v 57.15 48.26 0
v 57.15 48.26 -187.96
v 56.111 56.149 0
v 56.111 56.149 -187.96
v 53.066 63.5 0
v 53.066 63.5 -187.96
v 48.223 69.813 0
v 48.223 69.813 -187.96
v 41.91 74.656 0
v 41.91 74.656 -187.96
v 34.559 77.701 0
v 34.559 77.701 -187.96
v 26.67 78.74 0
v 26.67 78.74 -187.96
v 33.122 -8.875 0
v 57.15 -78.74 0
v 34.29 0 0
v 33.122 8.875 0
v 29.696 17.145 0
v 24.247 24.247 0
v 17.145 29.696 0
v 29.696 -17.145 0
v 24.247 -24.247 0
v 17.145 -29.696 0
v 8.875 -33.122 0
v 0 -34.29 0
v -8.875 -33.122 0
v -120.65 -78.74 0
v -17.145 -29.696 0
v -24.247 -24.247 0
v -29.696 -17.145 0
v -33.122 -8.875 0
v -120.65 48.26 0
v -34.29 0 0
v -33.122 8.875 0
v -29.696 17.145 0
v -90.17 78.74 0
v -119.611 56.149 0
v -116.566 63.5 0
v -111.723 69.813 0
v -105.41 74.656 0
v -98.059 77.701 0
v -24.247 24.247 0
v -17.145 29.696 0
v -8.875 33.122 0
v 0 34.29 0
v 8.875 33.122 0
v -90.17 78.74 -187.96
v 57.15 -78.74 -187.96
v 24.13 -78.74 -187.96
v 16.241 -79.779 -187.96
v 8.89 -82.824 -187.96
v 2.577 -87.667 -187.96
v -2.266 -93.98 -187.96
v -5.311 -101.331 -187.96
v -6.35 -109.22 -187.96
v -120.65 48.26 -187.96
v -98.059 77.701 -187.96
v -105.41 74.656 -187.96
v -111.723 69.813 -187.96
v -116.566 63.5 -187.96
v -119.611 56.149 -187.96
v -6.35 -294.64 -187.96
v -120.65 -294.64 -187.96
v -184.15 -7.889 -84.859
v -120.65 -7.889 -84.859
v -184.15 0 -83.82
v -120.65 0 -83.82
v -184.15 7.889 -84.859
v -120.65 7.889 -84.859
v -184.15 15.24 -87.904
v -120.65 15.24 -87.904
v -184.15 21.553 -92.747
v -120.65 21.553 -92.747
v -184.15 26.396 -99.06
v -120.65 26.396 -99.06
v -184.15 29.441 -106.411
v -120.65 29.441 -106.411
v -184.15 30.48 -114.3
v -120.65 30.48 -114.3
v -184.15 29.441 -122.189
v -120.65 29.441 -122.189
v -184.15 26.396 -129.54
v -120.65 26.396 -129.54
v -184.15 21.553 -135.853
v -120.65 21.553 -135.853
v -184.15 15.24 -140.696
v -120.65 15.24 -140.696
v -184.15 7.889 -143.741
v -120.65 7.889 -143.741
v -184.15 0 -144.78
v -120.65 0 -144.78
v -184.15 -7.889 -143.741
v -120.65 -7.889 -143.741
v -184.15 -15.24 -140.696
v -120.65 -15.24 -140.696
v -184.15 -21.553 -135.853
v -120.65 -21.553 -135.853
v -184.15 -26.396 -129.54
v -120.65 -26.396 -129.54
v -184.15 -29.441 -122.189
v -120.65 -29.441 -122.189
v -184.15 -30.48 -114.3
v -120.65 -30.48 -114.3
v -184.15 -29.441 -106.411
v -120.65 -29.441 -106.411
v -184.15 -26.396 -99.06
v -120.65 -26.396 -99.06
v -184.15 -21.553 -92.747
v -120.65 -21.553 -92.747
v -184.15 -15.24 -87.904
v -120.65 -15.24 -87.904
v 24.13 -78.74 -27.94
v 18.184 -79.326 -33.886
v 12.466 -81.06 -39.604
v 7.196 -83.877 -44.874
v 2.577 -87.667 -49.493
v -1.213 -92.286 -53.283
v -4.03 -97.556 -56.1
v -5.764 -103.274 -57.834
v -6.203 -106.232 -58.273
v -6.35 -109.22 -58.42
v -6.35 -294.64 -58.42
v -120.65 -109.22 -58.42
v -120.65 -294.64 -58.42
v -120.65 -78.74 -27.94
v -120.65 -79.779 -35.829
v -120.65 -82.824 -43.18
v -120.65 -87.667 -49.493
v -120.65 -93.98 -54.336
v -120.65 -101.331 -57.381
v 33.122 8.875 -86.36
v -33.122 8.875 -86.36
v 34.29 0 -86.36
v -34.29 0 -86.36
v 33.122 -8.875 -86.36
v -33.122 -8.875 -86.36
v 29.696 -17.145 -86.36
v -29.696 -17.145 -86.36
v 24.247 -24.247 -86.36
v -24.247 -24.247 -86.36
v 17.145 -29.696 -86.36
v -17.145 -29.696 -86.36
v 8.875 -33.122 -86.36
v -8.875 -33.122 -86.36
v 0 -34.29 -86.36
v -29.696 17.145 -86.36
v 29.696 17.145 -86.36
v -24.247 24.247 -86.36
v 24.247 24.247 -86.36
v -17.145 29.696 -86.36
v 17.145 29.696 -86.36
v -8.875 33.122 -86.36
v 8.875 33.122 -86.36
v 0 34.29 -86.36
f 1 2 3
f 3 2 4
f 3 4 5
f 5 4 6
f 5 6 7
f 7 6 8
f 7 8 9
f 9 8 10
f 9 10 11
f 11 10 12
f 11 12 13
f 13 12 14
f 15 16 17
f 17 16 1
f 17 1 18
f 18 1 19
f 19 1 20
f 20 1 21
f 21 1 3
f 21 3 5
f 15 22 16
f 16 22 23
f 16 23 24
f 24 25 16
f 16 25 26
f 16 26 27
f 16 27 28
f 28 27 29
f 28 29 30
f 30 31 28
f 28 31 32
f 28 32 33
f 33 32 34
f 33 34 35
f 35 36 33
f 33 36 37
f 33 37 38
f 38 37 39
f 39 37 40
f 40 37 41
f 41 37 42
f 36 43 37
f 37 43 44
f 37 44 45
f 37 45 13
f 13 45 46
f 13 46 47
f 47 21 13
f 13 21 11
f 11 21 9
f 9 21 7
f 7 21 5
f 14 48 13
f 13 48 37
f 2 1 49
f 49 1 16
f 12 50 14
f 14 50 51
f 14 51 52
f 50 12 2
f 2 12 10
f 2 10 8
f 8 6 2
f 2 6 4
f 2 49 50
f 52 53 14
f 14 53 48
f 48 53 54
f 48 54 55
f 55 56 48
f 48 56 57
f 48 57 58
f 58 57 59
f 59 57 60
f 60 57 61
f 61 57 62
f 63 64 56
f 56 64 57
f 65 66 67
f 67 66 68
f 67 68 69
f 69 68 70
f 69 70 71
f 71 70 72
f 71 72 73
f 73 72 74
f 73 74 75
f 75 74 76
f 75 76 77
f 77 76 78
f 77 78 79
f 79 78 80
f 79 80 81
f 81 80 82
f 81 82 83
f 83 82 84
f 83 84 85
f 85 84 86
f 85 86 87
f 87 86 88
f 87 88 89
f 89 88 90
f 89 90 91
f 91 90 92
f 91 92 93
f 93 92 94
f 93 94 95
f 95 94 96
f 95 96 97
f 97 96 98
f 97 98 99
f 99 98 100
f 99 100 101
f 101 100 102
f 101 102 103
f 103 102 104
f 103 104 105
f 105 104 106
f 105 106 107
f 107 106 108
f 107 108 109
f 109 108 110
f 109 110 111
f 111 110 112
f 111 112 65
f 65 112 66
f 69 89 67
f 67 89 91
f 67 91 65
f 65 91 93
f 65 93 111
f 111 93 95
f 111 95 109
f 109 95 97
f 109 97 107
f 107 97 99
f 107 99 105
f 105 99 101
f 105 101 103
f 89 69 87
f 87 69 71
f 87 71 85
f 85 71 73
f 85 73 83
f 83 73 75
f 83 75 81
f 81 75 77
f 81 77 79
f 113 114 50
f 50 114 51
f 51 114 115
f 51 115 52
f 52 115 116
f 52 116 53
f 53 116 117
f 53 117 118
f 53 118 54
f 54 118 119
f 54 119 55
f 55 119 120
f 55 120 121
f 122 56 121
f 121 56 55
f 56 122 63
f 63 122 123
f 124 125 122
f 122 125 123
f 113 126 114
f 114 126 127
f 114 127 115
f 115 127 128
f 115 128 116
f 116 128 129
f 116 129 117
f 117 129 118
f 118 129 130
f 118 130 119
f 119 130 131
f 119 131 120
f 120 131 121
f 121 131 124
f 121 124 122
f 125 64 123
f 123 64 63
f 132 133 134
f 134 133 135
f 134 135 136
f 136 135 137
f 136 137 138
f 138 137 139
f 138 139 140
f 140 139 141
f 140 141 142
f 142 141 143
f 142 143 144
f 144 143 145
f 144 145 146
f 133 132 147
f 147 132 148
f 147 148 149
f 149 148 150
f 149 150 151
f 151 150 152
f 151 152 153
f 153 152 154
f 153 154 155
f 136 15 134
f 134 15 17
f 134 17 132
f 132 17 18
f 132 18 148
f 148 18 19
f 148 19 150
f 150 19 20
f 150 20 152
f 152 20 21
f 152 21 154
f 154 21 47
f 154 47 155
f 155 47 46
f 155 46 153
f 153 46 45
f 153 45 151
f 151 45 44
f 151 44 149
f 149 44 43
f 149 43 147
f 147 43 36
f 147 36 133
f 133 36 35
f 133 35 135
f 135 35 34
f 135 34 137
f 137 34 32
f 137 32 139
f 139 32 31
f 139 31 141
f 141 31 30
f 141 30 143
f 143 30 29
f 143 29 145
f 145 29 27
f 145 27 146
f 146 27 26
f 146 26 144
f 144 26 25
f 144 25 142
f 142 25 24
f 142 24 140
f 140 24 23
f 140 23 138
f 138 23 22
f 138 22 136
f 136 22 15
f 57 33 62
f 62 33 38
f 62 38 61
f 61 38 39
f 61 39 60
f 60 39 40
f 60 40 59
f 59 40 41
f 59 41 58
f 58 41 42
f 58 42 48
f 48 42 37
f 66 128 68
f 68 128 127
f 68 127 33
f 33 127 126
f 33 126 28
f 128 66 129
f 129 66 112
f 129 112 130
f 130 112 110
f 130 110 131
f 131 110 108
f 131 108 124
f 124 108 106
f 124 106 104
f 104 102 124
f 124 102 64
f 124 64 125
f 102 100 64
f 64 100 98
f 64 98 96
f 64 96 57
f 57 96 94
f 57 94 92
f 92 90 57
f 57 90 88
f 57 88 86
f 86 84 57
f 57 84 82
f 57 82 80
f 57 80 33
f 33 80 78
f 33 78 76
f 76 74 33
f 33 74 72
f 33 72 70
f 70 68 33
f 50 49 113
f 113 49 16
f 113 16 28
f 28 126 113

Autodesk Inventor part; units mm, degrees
ref_plane "YZ Plane" through (0, 0, 0) normal (1, 0, 0) x (0, 1, 0)
ref_plane "XZ Plane" through (0, 0, 0) normal (0, 1, 0) x (-1, 0, 0)
ref_plane "XY Plane" through (0, 0, 0) normal (0, 0, 1) x (1, 0, 0)
sketch "Sketch1" plane through (0, 0, 0) normal (0, 0, 1) x (1, 0, 0)
  circle A0 centre (0, 0) radius 34.29
  line L0 (-120.65, -78.74) -> (120.65, -78.74)
  line L1 (120.65, -78.74) -> (120.65, 48.26)
  line L2 (90.17, 78.74) -> (-90.17, 78.74)
  line L3 (-120.65, 48.26) -> (-120.65, -78.74)
  arc A1 (-90.17, 78.74) -> (-120.65, 48.26) centre (-90.17, 48.26) ccw
  arc A2 (120.65, 48.26) -> (90.17, 78.74) centre (90.17, 48.26) ccw
  point P0 (120.65, 78.74)
  point P1 (-120.65, 78.74)
  dimension "d0" = 68.58
  dimension "d1" = 157.48
  dimension "d2" = 241.3
  dimension "d3" = 78.74
  dimension "d4" = 120.65
  dimension "d5" = 30.48
extrude "Extrusion1" add sketch "Sketch1" against normal blind 187.96
sketch "Sketch2" plane through (0, 0, -187.96) normal (0, 0, -1) x (-1, 0, 0)
  circle A0 centre (0, 0) radius 34.29 projected
  circle A1 centre (0, 0) radius 52.0012
extrude "Extrusion2" add sketch "Sketch2" against normal blind 101.6 contours A0 | A1
sketch "Sketch3" plane through (-120.65, -78.74, 0) normal (-1, 0, 0) x (0, 0, 1)
  line L0 (-187.96, 0) -> (-187.96, 127) projected
  line L1 (-187.96, 127) -> (-58.42, 127)
  line L2 (-58.42, -30.48) -> (-58.42, -215.9)
  line L3 (-58.42, -215.9) -> (-187.96, -215.9)
  line L4 (-187.96, -215.9) -> (-187.96, 127)
  line L5 (0, 0) -> (-187.96, 0) projected
  line L6 (-27.94, 0) -> (0, 0)
  line L7 (-187.96, -215.9) -> (-58.42, -215.9)
  line L8 (-58.42, -215.9) -> (-58.42, -30.48)
  line L9 (-58.42, 0) -> (-187.96, 0)
  line L10 (-187.96, 0) -> (-187.96, -215.9)
  arc A0 (-27.94, 0) -> (-58.42, -30.48) centre (-27.94, -30.48) ccw
  line L11 (0, 0) -> (-187.96, 0)
  line L12 (-187.96, -215.9) -> (-58.42, -215.9)
  arc A1 (-27.94, 0) -> (-58.42, -30.48) centre (-27.94, -30.48) ccw
  line L13 (-58.42, -30.48) -> (-58.42, -215.9)
  line L14 (-187.96, -215.9) -> (-187.96, 0)
  line L15 (-187.96, 0) -> (-27.94, 0)
  arc A2 (-27.94, 0) -> (-58.42, -30.48) centre (-27.94, -30.48) ccw
  point P0 (0, 78.74)
  dimension "d10" = 129.54
  dimension "d11" = 342.9
  dimension "d12" = 30.48
extrude "Extrusion3" add sketch "Sketch3" against normal blind 114.3
fillet "Fillet1" radius 30.48 1 edges at (-6.35, -78.74, -107.95)
sketch "Sketch4" plane through (-120.65, -78.74, 0) normal (-1, 0, 0) x (0, 0, 1)
  line L0 (0, 127) -> (-187.96, 127) projected
  line L1 (-187.96, 127) -> (-187.96, 69.85)
  line L2 (-187.96, 127) -> (-187.96, 0) projected
  line L3 (-144.78, 78.74) -> (-114.3, 78.74)
  circle A0 centre (-114.3, 78.74) radius 30.48
  line L4 (0, 127) -> (0, 0) projected
  point P0 (0, 78.74)
  dimension "d18" = 60.96
  dimension "d17" = 57.15
  dimension "d21" = 114.3
  dimension "d25" = 0
extrude "Extrusion4" add sketch "Sketch4" along normal blind 63.5
sketch "Sketch5" plane through (120.65, -78.74, 0) normal (1, 0, 0) x (0, 0, -1)
  line L0 (-23.8125, -17.4625) -> (228.6, -17.4625)
  line L1 (228.6, -17.4625) -> (228.6, 187.325)
  line L2 (228.6, 187.325) -> (-23.8125, 187.325)
  line L3 (-23.8125, 187.325) -> (-23.8125, -17.4625)
  point P0 (0, 78.74)
extrude "Extrusion5" cut sketch "Sketch5" against normal blind 63.5
fillet "Fillet2" radius 30.48 1 edges at (57.15, 78.74, -93.98)
equation "\"d3\" = 0.5 * d1"
equation "\"d4\" = 0.5 * d2"
properties part number "Shoulder1 Link-lrg"
